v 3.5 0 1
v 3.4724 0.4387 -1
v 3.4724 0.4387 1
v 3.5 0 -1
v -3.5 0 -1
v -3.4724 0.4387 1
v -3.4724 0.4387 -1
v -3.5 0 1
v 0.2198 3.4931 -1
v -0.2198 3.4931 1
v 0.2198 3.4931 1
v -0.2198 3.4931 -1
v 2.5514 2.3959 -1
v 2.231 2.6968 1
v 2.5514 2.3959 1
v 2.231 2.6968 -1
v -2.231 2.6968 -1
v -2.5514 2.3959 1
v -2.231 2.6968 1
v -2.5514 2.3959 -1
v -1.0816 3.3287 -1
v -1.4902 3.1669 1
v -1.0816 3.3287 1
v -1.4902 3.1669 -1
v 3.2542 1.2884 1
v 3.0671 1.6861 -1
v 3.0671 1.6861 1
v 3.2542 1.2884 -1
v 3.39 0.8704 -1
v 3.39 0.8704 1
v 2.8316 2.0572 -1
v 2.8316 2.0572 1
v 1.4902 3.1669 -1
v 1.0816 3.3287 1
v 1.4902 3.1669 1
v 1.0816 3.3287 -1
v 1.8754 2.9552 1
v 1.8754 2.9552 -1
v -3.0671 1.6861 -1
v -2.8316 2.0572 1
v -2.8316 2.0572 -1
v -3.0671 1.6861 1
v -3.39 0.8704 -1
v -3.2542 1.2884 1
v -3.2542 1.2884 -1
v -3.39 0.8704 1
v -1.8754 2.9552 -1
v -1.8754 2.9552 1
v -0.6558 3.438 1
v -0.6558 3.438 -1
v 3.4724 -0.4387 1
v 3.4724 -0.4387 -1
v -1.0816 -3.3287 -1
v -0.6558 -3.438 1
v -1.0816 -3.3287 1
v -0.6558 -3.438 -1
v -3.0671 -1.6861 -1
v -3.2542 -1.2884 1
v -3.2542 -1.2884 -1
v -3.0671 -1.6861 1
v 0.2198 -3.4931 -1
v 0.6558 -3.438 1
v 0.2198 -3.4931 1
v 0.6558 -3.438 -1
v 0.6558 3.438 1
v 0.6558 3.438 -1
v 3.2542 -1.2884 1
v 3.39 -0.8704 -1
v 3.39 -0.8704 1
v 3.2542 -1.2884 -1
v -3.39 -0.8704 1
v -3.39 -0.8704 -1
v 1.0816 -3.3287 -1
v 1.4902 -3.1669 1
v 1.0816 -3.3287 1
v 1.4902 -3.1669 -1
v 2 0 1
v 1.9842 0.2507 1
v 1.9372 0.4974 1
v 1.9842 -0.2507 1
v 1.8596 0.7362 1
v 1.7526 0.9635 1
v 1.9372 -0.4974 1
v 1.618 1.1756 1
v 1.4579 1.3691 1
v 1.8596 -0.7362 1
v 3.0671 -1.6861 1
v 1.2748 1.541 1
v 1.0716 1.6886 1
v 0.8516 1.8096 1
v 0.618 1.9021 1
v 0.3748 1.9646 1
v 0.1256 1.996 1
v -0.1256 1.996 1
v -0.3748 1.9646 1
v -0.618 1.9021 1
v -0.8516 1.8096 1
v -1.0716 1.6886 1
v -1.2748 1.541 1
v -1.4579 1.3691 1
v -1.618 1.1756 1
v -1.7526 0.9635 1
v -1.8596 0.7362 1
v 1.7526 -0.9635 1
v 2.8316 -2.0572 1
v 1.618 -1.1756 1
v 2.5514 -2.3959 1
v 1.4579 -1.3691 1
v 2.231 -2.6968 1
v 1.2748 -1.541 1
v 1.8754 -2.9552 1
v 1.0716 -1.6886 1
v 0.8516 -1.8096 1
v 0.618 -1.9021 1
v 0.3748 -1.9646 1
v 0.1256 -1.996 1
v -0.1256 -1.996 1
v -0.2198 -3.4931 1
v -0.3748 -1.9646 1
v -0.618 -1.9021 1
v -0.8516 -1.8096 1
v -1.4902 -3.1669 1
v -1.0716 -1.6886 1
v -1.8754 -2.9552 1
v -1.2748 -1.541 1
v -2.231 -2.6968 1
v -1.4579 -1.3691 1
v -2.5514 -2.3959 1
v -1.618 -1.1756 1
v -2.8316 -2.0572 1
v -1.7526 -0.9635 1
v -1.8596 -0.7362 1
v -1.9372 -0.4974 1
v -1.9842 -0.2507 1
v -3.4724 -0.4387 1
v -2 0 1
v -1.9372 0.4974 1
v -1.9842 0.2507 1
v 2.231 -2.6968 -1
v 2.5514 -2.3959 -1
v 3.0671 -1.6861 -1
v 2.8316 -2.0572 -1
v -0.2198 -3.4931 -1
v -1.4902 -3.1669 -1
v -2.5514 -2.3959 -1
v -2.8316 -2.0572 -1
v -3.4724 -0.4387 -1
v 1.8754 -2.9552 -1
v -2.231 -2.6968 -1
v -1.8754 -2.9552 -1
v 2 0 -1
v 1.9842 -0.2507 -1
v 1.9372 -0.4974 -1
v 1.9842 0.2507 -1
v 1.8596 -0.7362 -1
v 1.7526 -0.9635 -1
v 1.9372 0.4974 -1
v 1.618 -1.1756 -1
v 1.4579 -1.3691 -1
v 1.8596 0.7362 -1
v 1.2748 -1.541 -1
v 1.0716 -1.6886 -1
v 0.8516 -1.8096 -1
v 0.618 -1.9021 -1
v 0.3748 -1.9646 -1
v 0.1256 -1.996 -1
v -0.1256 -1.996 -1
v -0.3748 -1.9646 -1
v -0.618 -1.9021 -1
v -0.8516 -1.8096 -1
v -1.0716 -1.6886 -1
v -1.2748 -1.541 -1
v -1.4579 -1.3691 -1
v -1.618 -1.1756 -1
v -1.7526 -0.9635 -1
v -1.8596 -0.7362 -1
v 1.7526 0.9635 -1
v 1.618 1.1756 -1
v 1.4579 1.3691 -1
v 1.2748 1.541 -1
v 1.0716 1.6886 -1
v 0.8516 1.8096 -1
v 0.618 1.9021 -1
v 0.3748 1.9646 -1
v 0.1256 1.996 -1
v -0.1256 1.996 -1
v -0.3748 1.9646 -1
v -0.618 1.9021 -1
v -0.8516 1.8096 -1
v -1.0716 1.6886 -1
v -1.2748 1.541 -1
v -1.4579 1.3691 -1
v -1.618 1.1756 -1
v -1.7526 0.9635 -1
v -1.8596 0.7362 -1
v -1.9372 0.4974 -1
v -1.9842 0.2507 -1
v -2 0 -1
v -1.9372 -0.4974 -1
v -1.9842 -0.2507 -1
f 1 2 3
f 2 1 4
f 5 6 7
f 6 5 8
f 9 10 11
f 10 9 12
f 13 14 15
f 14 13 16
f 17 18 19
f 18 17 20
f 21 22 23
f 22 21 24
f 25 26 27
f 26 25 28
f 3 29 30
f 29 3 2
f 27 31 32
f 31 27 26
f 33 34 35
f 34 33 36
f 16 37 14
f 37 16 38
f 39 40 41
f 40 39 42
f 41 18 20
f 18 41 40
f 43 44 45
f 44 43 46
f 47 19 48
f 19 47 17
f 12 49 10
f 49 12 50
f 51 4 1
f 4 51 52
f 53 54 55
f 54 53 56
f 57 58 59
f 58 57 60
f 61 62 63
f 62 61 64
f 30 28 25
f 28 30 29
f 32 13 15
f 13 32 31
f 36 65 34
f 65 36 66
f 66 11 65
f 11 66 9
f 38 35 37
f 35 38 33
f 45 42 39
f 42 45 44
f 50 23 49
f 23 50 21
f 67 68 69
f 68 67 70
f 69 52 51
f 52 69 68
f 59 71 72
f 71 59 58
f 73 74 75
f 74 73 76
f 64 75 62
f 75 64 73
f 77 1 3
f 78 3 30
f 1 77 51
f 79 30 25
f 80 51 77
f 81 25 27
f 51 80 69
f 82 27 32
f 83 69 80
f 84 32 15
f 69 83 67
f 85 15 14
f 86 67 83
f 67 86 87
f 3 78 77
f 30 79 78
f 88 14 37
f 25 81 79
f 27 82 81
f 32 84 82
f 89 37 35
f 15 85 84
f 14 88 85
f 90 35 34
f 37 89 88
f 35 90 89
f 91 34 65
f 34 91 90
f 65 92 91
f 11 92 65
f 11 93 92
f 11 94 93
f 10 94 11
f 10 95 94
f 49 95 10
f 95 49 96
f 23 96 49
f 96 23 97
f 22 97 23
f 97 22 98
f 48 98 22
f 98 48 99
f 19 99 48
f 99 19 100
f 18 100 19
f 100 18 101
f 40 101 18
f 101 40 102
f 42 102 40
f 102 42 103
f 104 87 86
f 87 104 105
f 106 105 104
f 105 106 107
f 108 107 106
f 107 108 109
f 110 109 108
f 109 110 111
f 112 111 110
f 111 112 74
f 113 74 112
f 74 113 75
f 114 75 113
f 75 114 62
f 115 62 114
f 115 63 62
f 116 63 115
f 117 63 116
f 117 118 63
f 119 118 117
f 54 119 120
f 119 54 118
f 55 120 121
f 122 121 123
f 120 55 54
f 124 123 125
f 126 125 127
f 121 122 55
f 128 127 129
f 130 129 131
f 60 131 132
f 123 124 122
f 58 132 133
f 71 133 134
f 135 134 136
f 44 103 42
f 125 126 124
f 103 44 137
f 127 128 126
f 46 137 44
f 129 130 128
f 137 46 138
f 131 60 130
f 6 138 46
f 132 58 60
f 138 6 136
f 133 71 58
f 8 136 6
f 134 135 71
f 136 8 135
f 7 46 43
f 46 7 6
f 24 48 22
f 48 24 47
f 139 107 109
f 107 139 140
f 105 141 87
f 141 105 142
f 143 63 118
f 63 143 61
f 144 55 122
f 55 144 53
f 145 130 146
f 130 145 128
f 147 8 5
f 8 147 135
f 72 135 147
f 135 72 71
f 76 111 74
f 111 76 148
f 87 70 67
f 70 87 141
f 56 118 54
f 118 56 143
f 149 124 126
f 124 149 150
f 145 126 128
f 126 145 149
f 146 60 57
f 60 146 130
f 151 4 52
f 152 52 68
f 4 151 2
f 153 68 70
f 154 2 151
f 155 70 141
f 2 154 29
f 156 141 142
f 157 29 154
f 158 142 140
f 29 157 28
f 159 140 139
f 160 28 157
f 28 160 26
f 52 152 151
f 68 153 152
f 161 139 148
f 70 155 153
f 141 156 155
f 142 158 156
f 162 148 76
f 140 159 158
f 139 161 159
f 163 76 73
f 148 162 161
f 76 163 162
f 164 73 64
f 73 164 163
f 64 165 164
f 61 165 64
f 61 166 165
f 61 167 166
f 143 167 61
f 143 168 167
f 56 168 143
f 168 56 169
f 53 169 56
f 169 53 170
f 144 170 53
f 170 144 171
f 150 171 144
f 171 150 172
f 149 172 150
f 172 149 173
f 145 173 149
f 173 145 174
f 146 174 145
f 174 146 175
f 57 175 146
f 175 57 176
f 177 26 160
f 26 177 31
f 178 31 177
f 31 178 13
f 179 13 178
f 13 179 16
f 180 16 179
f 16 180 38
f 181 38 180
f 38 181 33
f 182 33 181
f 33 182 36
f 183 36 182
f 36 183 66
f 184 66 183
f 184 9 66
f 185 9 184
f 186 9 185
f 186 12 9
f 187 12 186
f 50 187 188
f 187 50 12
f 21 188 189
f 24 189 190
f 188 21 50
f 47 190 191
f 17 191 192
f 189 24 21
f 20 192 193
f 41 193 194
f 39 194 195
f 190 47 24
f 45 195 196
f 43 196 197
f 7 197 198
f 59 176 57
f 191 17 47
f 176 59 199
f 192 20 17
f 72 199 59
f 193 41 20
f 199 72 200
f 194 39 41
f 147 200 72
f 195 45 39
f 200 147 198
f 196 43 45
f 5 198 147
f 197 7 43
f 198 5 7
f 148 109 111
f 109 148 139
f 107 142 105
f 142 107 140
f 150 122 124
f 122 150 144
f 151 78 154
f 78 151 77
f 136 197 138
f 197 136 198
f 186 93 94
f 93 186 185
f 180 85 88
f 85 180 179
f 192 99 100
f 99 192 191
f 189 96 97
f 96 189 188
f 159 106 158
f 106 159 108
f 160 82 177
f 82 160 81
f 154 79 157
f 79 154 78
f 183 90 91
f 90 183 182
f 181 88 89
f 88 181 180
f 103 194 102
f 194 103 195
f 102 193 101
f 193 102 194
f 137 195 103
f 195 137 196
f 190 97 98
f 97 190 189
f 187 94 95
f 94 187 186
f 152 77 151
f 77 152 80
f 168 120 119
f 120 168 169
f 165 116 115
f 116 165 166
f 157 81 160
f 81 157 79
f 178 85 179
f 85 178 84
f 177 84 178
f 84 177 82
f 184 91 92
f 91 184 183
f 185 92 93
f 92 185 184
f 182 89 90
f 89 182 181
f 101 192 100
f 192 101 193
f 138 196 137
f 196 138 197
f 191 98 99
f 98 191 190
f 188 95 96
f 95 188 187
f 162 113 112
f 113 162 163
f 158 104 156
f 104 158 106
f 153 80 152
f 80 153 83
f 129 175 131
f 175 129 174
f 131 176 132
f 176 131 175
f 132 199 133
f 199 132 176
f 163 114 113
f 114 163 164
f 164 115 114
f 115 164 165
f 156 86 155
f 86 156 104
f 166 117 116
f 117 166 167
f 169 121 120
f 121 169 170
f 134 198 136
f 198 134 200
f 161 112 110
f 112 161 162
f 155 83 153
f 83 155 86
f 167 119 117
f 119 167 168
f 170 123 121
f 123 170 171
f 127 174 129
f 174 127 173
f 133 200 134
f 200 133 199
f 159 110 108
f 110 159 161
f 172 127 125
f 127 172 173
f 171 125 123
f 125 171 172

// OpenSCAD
$fn = 50;


difference() {
	union() {
		translate(v = [0, 0, -1.0000000000]) {
			cylinder(h = 2, r = 3.5000000000);
		}
	}
	union() {
		translate(v = [0, 0, -100.0000000000]) {
			cylinder(h = 200, r = 2.0000000000);
		}
	}
}
